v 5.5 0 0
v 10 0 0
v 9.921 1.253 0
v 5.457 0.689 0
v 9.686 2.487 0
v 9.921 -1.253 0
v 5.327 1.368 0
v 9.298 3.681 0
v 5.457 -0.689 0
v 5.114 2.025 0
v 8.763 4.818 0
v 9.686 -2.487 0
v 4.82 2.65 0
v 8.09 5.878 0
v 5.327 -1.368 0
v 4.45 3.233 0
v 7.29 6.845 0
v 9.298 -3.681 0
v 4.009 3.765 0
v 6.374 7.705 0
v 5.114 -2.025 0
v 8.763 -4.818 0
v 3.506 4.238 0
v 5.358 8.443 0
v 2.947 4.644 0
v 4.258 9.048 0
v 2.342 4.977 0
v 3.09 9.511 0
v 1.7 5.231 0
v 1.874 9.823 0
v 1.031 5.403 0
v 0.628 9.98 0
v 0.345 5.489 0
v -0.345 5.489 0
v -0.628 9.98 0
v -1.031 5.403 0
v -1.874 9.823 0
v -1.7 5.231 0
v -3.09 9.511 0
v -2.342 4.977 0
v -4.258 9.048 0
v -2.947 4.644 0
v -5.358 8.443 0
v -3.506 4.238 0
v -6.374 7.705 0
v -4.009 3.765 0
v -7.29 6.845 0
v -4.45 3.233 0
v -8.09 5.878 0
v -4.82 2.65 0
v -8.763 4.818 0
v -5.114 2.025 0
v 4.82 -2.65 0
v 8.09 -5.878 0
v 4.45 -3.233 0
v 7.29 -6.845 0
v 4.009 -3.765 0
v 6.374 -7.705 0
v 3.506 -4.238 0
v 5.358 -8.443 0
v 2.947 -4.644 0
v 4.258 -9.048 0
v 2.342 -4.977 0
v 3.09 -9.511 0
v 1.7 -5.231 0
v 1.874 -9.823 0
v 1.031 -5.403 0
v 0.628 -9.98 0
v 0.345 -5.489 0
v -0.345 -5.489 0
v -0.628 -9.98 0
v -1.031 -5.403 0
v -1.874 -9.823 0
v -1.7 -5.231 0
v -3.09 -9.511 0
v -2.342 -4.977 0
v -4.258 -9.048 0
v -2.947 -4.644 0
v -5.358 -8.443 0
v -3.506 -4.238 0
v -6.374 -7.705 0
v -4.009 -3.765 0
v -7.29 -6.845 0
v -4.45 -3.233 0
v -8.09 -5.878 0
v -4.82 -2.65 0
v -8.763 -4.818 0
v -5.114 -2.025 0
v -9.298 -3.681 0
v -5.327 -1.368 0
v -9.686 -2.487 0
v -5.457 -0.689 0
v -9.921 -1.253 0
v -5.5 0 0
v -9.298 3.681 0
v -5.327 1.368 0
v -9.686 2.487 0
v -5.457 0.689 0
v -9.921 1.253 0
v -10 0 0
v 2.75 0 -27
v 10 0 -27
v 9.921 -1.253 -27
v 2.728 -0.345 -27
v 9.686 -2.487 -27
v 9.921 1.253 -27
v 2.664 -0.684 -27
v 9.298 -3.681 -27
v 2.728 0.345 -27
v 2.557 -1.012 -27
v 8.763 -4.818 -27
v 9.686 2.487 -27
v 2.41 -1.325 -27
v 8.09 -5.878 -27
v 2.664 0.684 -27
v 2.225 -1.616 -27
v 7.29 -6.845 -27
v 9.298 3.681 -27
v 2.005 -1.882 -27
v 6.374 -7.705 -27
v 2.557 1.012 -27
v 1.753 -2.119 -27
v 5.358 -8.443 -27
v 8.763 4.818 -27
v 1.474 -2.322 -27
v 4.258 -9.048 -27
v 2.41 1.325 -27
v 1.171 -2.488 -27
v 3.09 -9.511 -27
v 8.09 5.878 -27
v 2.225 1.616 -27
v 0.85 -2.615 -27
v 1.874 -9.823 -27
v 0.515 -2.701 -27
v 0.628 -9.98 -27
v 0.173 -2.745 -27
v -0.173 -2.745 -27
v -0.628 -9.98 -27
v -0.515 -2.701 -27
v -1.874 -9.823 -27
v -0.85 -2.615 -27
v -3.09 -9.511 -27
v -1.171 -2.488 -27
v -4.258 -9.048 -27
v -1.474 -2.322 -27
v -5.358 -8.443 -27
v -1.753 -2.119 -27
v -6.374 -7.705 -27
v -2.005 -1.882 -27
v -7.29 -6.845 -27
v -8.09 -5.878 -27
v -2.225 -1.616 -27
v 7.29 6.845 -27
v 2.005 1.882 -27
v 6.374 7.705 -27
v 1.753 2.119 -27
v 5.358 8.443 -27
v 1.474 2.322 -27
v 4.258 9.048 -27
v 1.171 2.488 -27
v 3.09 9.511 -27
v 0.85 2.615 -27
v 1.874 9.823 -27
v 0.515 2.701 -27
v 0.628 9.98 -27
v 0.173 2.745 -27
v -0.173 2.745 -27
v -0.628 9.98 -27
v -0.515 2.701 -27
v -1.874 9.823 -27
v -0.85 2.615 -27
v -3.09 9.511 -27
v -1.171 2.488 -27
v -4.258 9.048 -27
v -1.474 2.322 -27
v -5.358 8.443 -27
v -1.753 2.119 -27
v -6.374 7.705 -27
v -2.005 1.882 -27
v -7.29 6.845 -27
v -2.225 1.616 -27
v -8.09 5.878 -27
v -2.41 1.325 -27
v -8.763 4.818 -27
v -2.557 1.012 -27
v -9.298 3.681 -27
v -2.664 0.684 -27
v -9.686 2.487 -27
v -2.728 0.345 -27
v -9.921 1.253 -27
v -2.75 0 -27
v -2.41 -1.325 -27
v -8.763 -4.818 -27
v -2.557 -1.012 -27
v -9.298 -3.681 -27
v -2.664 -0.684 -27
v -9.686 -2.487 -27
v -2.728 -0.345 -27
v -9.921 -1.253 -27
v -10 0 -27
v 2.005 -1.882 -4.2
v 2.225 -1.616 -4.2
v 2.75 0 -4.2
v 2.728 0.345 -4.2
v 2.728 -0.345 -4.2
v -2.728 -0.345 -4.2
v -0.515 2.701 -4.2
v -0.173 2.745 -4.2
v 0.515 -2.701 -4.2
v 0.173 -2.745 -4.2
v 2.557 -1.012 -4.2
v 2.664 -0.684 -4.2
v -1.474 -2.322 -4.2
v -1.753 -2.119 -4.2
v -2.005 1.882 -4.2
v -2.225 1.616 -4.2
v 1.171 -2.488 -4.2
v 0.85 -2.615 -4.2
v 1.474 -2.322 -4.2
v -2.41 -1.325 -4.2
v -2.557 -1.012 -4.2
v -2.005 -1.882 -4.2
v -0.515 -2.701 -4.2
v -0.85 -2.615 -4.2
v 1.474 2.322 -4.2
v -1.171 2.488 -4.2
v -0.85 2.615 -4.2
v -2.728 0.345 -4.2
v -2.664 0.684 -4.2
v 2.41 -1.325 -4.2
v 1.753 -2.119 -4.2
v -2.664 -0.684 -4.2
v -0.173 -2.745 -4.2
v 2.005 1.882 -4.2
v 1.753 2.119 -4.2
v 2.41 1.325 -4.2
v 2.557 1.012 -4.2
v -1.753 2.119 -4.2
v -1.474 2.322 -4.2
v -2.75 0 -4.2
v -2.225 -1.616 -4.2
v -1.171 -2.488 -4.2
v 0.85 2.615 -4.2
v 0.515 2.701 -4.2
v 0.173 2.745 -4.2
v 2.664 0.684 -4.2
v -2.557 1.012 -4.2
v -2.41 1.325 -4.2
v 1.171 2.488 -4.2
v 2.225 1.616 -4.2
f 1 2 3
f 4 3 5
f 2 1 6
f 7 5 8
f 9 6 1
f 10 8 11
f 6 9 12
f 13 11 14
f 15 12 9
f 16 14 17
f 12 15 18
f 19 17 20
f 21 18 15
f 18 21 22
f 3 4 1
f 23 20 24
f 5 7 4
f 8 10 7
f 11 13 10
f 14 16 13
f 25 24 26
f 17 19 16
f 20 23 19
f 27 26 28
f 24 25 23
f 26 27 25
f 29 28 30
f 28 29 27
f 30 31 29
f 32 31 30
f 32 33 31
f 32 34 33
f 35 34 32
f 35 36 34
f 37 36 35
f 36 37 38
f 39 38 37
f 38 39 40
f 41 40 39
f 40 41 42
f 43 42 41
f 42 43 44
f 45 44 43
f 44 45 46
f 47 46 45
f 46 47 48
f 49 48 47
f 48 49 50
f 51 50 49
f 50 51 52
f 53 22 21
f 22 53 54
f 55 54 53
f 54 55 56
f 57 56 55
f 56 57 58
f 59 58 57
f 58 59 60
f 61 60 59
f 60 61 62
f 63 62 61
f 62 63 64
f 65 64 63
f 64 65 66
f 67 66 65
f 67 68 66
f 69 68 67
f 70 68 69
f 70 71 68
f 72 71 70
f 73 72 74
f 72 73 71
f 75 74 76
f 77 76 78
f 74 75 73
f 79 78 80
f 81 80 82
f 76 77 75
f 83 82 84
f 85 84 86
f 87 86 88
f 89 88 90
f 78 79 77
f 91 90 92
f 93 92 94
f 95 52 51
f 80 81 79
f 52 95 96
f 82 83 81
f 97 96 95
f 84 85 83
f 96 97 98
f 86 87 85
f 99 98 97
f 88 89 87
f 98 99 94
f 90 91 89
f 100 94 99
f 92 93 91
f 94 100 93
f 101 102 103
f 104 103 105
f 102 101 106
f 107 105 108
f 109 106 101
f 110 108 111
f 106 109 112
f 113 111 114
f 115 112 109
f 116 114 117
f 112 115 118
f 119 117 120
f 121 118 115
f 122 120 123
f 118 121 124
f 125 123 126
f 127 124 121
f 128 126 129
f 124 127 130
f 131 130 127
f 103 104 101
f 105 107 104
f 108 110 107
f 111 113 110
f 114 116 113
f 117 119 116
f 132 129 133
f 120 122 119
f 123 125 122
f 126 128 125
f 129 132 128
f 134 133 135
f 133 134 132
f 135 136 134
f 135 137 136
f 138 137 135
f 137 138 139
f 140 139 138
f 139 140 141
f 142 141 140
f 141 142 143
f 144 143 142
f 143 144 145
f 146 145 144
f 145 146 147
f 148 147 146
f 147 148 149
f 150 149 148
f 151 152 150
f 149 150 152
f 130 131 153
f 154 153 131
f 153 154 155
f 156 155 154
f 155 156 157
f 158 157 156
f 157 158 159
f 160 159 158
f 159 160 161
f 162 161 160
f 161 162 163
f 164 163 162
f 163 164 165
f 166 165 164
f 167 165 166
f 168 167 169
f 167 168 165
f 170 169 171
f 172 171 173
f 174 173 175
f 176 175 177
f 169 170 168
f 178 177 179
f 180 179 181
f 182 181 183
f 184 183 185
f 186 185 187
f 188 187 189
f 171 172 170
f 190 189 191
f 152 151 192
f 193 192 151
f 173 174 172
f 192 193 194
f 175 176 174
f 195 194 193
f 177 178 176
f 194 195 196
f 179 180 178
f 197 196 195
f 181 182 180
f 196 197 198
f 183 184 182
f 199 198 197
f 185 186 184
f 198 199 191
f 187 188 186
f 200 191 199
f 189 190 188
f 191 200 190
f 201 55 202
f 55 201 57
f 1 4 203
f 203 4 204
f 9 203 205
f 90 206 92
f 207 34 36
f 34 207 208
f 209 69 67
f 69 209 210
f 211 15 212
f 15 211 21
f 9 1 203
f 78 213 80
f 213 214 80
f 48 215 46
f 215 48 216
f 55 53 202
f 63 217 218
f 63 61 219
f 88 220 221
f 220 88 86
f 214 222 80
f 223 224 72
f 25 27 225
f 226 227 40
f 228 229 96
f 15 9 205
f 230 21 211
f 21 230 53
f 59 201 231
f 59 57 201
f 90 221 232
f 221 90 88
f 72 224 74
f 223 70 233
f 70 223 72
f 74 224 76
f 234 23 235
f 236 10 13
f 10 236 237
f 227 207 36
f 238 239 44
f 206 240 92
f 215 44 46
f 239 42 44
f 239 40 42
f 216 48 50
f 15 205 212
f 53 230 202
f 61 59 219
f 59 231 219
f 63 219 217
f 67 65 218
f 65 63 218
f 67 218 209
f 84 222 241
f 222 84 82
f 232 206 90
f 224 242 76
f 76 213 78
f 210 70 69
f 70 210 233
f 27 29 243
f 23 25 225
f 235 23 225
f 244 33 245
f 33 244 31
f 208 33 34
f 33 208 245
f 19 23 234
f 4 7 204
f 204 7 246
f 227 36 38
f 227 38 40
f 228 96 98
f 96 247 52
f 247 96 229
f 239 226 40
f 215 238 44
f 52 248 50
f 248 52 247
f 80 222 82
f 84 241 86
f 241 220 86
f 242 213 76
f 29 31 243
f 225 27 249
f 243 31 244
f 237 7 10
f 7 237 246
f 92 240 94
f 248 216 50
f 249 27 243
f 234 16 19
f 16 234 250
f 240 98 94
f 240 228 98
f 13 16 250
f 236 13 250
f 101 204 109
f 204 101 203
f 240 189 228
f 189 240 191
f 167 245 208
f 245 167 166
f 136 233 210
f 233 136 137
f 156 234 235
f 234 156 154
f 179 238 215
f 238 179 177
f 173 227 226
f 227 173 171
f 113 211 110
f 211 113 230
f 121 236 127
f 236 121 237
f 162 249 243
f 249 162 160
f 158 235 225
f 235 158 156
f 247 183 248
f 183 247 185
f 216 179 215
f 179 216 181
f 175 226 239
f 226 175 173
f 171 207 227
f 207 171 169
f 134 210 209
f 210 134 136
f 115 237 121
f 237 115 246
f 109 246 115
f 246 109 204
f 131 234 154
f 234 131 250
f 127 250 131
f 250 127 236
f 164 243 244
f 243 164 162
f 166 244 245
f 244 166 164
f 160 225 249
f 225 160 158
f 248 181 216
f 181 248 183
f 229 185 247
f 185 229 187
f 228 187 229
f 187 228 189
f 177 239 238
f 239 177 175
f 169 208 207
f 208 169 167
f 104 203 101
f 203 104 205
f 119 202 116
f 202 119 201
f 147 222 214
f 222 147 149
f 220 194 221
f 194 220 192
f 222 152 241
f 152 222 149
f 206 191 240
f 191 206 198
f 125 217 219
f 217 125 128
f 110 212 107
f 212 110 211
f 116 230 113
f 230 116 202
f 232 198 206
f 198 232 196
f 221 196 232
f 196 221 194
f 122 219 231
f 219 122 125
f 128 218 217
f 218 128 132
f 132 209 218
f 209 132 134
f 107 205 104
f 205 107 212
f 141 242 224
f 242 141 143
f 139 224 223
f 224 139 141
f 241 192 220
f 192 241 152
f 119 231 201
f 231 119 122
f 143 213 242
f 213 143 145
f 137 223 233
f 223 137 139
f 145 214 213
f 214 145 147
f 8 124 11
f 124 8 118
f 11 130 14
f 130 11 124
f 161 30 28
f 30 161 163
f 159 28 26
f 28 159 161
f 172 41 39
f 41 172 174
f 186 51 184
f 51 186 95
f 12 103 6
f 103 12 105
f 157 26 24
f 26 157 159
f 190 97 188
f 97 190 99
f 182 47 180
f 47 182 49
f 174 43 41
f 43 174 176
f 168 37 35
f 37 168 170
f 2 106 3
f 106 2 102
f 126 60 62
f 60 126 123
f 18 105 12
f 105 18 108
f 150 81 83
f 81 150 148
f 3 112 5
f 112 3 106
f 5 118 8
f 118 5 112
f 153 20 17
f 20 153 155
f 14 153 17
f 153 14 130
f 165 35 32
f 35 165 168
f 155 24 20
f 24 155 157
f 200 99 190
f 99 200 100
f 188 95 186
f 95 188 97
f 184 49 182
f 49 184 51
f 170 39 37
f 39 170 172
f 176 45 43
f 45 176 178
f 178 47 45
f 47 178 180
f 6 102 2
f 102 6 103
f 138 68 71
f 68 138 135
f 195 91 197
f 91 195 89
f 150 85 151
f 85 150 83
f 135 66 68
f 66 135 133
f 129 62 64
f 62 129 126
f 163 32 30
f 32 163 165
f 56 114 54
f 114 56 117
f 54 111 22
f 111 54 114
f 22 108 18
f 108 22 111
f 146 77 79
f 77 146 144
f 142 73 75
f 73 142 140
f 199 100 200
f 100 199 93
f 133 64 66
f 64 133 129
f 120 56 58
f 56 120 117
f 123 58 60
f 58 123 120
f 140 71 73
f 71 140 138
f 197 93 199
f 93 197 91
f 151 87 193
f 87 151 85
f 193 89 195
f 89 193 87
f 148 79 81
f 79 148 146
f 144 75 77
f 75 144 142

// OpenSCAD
$fn = 50;


difference() {
	union() {
		translate(v = [0, 0, -27.0000000000]) {
			cylinder(h = 27, r = 10.0000000000);
		}
		cylinder(h = 0, r = 20.0000000000);
	}
	union() {
		translate(v = [0, 0, 0]) {
			rotate(a = [0, 0, 0]) {
				difference() {
					union() {
						#translate(v = [0, 0, -27.0000000000]) {
							cylinder(h = 27, r = 2.2500000000);
						}
						#translate(v = [0, 0, -4.2000000000]) {
							cylinder(h = 4.2000000000, r1 = 2.7500000000, r2 = 5.5000000000);
						}
						#translate(v = [0, 0, -27.0000000000]) {
							cylinder(h = 27, r = 2.7500000000);
						}
						#translate(v = [0, 0, -27.0000000000]) {
							cylinder(h = 27, r = 2.2500000000);
						}
					}
					union();
				}
			}
		}
	}
}
